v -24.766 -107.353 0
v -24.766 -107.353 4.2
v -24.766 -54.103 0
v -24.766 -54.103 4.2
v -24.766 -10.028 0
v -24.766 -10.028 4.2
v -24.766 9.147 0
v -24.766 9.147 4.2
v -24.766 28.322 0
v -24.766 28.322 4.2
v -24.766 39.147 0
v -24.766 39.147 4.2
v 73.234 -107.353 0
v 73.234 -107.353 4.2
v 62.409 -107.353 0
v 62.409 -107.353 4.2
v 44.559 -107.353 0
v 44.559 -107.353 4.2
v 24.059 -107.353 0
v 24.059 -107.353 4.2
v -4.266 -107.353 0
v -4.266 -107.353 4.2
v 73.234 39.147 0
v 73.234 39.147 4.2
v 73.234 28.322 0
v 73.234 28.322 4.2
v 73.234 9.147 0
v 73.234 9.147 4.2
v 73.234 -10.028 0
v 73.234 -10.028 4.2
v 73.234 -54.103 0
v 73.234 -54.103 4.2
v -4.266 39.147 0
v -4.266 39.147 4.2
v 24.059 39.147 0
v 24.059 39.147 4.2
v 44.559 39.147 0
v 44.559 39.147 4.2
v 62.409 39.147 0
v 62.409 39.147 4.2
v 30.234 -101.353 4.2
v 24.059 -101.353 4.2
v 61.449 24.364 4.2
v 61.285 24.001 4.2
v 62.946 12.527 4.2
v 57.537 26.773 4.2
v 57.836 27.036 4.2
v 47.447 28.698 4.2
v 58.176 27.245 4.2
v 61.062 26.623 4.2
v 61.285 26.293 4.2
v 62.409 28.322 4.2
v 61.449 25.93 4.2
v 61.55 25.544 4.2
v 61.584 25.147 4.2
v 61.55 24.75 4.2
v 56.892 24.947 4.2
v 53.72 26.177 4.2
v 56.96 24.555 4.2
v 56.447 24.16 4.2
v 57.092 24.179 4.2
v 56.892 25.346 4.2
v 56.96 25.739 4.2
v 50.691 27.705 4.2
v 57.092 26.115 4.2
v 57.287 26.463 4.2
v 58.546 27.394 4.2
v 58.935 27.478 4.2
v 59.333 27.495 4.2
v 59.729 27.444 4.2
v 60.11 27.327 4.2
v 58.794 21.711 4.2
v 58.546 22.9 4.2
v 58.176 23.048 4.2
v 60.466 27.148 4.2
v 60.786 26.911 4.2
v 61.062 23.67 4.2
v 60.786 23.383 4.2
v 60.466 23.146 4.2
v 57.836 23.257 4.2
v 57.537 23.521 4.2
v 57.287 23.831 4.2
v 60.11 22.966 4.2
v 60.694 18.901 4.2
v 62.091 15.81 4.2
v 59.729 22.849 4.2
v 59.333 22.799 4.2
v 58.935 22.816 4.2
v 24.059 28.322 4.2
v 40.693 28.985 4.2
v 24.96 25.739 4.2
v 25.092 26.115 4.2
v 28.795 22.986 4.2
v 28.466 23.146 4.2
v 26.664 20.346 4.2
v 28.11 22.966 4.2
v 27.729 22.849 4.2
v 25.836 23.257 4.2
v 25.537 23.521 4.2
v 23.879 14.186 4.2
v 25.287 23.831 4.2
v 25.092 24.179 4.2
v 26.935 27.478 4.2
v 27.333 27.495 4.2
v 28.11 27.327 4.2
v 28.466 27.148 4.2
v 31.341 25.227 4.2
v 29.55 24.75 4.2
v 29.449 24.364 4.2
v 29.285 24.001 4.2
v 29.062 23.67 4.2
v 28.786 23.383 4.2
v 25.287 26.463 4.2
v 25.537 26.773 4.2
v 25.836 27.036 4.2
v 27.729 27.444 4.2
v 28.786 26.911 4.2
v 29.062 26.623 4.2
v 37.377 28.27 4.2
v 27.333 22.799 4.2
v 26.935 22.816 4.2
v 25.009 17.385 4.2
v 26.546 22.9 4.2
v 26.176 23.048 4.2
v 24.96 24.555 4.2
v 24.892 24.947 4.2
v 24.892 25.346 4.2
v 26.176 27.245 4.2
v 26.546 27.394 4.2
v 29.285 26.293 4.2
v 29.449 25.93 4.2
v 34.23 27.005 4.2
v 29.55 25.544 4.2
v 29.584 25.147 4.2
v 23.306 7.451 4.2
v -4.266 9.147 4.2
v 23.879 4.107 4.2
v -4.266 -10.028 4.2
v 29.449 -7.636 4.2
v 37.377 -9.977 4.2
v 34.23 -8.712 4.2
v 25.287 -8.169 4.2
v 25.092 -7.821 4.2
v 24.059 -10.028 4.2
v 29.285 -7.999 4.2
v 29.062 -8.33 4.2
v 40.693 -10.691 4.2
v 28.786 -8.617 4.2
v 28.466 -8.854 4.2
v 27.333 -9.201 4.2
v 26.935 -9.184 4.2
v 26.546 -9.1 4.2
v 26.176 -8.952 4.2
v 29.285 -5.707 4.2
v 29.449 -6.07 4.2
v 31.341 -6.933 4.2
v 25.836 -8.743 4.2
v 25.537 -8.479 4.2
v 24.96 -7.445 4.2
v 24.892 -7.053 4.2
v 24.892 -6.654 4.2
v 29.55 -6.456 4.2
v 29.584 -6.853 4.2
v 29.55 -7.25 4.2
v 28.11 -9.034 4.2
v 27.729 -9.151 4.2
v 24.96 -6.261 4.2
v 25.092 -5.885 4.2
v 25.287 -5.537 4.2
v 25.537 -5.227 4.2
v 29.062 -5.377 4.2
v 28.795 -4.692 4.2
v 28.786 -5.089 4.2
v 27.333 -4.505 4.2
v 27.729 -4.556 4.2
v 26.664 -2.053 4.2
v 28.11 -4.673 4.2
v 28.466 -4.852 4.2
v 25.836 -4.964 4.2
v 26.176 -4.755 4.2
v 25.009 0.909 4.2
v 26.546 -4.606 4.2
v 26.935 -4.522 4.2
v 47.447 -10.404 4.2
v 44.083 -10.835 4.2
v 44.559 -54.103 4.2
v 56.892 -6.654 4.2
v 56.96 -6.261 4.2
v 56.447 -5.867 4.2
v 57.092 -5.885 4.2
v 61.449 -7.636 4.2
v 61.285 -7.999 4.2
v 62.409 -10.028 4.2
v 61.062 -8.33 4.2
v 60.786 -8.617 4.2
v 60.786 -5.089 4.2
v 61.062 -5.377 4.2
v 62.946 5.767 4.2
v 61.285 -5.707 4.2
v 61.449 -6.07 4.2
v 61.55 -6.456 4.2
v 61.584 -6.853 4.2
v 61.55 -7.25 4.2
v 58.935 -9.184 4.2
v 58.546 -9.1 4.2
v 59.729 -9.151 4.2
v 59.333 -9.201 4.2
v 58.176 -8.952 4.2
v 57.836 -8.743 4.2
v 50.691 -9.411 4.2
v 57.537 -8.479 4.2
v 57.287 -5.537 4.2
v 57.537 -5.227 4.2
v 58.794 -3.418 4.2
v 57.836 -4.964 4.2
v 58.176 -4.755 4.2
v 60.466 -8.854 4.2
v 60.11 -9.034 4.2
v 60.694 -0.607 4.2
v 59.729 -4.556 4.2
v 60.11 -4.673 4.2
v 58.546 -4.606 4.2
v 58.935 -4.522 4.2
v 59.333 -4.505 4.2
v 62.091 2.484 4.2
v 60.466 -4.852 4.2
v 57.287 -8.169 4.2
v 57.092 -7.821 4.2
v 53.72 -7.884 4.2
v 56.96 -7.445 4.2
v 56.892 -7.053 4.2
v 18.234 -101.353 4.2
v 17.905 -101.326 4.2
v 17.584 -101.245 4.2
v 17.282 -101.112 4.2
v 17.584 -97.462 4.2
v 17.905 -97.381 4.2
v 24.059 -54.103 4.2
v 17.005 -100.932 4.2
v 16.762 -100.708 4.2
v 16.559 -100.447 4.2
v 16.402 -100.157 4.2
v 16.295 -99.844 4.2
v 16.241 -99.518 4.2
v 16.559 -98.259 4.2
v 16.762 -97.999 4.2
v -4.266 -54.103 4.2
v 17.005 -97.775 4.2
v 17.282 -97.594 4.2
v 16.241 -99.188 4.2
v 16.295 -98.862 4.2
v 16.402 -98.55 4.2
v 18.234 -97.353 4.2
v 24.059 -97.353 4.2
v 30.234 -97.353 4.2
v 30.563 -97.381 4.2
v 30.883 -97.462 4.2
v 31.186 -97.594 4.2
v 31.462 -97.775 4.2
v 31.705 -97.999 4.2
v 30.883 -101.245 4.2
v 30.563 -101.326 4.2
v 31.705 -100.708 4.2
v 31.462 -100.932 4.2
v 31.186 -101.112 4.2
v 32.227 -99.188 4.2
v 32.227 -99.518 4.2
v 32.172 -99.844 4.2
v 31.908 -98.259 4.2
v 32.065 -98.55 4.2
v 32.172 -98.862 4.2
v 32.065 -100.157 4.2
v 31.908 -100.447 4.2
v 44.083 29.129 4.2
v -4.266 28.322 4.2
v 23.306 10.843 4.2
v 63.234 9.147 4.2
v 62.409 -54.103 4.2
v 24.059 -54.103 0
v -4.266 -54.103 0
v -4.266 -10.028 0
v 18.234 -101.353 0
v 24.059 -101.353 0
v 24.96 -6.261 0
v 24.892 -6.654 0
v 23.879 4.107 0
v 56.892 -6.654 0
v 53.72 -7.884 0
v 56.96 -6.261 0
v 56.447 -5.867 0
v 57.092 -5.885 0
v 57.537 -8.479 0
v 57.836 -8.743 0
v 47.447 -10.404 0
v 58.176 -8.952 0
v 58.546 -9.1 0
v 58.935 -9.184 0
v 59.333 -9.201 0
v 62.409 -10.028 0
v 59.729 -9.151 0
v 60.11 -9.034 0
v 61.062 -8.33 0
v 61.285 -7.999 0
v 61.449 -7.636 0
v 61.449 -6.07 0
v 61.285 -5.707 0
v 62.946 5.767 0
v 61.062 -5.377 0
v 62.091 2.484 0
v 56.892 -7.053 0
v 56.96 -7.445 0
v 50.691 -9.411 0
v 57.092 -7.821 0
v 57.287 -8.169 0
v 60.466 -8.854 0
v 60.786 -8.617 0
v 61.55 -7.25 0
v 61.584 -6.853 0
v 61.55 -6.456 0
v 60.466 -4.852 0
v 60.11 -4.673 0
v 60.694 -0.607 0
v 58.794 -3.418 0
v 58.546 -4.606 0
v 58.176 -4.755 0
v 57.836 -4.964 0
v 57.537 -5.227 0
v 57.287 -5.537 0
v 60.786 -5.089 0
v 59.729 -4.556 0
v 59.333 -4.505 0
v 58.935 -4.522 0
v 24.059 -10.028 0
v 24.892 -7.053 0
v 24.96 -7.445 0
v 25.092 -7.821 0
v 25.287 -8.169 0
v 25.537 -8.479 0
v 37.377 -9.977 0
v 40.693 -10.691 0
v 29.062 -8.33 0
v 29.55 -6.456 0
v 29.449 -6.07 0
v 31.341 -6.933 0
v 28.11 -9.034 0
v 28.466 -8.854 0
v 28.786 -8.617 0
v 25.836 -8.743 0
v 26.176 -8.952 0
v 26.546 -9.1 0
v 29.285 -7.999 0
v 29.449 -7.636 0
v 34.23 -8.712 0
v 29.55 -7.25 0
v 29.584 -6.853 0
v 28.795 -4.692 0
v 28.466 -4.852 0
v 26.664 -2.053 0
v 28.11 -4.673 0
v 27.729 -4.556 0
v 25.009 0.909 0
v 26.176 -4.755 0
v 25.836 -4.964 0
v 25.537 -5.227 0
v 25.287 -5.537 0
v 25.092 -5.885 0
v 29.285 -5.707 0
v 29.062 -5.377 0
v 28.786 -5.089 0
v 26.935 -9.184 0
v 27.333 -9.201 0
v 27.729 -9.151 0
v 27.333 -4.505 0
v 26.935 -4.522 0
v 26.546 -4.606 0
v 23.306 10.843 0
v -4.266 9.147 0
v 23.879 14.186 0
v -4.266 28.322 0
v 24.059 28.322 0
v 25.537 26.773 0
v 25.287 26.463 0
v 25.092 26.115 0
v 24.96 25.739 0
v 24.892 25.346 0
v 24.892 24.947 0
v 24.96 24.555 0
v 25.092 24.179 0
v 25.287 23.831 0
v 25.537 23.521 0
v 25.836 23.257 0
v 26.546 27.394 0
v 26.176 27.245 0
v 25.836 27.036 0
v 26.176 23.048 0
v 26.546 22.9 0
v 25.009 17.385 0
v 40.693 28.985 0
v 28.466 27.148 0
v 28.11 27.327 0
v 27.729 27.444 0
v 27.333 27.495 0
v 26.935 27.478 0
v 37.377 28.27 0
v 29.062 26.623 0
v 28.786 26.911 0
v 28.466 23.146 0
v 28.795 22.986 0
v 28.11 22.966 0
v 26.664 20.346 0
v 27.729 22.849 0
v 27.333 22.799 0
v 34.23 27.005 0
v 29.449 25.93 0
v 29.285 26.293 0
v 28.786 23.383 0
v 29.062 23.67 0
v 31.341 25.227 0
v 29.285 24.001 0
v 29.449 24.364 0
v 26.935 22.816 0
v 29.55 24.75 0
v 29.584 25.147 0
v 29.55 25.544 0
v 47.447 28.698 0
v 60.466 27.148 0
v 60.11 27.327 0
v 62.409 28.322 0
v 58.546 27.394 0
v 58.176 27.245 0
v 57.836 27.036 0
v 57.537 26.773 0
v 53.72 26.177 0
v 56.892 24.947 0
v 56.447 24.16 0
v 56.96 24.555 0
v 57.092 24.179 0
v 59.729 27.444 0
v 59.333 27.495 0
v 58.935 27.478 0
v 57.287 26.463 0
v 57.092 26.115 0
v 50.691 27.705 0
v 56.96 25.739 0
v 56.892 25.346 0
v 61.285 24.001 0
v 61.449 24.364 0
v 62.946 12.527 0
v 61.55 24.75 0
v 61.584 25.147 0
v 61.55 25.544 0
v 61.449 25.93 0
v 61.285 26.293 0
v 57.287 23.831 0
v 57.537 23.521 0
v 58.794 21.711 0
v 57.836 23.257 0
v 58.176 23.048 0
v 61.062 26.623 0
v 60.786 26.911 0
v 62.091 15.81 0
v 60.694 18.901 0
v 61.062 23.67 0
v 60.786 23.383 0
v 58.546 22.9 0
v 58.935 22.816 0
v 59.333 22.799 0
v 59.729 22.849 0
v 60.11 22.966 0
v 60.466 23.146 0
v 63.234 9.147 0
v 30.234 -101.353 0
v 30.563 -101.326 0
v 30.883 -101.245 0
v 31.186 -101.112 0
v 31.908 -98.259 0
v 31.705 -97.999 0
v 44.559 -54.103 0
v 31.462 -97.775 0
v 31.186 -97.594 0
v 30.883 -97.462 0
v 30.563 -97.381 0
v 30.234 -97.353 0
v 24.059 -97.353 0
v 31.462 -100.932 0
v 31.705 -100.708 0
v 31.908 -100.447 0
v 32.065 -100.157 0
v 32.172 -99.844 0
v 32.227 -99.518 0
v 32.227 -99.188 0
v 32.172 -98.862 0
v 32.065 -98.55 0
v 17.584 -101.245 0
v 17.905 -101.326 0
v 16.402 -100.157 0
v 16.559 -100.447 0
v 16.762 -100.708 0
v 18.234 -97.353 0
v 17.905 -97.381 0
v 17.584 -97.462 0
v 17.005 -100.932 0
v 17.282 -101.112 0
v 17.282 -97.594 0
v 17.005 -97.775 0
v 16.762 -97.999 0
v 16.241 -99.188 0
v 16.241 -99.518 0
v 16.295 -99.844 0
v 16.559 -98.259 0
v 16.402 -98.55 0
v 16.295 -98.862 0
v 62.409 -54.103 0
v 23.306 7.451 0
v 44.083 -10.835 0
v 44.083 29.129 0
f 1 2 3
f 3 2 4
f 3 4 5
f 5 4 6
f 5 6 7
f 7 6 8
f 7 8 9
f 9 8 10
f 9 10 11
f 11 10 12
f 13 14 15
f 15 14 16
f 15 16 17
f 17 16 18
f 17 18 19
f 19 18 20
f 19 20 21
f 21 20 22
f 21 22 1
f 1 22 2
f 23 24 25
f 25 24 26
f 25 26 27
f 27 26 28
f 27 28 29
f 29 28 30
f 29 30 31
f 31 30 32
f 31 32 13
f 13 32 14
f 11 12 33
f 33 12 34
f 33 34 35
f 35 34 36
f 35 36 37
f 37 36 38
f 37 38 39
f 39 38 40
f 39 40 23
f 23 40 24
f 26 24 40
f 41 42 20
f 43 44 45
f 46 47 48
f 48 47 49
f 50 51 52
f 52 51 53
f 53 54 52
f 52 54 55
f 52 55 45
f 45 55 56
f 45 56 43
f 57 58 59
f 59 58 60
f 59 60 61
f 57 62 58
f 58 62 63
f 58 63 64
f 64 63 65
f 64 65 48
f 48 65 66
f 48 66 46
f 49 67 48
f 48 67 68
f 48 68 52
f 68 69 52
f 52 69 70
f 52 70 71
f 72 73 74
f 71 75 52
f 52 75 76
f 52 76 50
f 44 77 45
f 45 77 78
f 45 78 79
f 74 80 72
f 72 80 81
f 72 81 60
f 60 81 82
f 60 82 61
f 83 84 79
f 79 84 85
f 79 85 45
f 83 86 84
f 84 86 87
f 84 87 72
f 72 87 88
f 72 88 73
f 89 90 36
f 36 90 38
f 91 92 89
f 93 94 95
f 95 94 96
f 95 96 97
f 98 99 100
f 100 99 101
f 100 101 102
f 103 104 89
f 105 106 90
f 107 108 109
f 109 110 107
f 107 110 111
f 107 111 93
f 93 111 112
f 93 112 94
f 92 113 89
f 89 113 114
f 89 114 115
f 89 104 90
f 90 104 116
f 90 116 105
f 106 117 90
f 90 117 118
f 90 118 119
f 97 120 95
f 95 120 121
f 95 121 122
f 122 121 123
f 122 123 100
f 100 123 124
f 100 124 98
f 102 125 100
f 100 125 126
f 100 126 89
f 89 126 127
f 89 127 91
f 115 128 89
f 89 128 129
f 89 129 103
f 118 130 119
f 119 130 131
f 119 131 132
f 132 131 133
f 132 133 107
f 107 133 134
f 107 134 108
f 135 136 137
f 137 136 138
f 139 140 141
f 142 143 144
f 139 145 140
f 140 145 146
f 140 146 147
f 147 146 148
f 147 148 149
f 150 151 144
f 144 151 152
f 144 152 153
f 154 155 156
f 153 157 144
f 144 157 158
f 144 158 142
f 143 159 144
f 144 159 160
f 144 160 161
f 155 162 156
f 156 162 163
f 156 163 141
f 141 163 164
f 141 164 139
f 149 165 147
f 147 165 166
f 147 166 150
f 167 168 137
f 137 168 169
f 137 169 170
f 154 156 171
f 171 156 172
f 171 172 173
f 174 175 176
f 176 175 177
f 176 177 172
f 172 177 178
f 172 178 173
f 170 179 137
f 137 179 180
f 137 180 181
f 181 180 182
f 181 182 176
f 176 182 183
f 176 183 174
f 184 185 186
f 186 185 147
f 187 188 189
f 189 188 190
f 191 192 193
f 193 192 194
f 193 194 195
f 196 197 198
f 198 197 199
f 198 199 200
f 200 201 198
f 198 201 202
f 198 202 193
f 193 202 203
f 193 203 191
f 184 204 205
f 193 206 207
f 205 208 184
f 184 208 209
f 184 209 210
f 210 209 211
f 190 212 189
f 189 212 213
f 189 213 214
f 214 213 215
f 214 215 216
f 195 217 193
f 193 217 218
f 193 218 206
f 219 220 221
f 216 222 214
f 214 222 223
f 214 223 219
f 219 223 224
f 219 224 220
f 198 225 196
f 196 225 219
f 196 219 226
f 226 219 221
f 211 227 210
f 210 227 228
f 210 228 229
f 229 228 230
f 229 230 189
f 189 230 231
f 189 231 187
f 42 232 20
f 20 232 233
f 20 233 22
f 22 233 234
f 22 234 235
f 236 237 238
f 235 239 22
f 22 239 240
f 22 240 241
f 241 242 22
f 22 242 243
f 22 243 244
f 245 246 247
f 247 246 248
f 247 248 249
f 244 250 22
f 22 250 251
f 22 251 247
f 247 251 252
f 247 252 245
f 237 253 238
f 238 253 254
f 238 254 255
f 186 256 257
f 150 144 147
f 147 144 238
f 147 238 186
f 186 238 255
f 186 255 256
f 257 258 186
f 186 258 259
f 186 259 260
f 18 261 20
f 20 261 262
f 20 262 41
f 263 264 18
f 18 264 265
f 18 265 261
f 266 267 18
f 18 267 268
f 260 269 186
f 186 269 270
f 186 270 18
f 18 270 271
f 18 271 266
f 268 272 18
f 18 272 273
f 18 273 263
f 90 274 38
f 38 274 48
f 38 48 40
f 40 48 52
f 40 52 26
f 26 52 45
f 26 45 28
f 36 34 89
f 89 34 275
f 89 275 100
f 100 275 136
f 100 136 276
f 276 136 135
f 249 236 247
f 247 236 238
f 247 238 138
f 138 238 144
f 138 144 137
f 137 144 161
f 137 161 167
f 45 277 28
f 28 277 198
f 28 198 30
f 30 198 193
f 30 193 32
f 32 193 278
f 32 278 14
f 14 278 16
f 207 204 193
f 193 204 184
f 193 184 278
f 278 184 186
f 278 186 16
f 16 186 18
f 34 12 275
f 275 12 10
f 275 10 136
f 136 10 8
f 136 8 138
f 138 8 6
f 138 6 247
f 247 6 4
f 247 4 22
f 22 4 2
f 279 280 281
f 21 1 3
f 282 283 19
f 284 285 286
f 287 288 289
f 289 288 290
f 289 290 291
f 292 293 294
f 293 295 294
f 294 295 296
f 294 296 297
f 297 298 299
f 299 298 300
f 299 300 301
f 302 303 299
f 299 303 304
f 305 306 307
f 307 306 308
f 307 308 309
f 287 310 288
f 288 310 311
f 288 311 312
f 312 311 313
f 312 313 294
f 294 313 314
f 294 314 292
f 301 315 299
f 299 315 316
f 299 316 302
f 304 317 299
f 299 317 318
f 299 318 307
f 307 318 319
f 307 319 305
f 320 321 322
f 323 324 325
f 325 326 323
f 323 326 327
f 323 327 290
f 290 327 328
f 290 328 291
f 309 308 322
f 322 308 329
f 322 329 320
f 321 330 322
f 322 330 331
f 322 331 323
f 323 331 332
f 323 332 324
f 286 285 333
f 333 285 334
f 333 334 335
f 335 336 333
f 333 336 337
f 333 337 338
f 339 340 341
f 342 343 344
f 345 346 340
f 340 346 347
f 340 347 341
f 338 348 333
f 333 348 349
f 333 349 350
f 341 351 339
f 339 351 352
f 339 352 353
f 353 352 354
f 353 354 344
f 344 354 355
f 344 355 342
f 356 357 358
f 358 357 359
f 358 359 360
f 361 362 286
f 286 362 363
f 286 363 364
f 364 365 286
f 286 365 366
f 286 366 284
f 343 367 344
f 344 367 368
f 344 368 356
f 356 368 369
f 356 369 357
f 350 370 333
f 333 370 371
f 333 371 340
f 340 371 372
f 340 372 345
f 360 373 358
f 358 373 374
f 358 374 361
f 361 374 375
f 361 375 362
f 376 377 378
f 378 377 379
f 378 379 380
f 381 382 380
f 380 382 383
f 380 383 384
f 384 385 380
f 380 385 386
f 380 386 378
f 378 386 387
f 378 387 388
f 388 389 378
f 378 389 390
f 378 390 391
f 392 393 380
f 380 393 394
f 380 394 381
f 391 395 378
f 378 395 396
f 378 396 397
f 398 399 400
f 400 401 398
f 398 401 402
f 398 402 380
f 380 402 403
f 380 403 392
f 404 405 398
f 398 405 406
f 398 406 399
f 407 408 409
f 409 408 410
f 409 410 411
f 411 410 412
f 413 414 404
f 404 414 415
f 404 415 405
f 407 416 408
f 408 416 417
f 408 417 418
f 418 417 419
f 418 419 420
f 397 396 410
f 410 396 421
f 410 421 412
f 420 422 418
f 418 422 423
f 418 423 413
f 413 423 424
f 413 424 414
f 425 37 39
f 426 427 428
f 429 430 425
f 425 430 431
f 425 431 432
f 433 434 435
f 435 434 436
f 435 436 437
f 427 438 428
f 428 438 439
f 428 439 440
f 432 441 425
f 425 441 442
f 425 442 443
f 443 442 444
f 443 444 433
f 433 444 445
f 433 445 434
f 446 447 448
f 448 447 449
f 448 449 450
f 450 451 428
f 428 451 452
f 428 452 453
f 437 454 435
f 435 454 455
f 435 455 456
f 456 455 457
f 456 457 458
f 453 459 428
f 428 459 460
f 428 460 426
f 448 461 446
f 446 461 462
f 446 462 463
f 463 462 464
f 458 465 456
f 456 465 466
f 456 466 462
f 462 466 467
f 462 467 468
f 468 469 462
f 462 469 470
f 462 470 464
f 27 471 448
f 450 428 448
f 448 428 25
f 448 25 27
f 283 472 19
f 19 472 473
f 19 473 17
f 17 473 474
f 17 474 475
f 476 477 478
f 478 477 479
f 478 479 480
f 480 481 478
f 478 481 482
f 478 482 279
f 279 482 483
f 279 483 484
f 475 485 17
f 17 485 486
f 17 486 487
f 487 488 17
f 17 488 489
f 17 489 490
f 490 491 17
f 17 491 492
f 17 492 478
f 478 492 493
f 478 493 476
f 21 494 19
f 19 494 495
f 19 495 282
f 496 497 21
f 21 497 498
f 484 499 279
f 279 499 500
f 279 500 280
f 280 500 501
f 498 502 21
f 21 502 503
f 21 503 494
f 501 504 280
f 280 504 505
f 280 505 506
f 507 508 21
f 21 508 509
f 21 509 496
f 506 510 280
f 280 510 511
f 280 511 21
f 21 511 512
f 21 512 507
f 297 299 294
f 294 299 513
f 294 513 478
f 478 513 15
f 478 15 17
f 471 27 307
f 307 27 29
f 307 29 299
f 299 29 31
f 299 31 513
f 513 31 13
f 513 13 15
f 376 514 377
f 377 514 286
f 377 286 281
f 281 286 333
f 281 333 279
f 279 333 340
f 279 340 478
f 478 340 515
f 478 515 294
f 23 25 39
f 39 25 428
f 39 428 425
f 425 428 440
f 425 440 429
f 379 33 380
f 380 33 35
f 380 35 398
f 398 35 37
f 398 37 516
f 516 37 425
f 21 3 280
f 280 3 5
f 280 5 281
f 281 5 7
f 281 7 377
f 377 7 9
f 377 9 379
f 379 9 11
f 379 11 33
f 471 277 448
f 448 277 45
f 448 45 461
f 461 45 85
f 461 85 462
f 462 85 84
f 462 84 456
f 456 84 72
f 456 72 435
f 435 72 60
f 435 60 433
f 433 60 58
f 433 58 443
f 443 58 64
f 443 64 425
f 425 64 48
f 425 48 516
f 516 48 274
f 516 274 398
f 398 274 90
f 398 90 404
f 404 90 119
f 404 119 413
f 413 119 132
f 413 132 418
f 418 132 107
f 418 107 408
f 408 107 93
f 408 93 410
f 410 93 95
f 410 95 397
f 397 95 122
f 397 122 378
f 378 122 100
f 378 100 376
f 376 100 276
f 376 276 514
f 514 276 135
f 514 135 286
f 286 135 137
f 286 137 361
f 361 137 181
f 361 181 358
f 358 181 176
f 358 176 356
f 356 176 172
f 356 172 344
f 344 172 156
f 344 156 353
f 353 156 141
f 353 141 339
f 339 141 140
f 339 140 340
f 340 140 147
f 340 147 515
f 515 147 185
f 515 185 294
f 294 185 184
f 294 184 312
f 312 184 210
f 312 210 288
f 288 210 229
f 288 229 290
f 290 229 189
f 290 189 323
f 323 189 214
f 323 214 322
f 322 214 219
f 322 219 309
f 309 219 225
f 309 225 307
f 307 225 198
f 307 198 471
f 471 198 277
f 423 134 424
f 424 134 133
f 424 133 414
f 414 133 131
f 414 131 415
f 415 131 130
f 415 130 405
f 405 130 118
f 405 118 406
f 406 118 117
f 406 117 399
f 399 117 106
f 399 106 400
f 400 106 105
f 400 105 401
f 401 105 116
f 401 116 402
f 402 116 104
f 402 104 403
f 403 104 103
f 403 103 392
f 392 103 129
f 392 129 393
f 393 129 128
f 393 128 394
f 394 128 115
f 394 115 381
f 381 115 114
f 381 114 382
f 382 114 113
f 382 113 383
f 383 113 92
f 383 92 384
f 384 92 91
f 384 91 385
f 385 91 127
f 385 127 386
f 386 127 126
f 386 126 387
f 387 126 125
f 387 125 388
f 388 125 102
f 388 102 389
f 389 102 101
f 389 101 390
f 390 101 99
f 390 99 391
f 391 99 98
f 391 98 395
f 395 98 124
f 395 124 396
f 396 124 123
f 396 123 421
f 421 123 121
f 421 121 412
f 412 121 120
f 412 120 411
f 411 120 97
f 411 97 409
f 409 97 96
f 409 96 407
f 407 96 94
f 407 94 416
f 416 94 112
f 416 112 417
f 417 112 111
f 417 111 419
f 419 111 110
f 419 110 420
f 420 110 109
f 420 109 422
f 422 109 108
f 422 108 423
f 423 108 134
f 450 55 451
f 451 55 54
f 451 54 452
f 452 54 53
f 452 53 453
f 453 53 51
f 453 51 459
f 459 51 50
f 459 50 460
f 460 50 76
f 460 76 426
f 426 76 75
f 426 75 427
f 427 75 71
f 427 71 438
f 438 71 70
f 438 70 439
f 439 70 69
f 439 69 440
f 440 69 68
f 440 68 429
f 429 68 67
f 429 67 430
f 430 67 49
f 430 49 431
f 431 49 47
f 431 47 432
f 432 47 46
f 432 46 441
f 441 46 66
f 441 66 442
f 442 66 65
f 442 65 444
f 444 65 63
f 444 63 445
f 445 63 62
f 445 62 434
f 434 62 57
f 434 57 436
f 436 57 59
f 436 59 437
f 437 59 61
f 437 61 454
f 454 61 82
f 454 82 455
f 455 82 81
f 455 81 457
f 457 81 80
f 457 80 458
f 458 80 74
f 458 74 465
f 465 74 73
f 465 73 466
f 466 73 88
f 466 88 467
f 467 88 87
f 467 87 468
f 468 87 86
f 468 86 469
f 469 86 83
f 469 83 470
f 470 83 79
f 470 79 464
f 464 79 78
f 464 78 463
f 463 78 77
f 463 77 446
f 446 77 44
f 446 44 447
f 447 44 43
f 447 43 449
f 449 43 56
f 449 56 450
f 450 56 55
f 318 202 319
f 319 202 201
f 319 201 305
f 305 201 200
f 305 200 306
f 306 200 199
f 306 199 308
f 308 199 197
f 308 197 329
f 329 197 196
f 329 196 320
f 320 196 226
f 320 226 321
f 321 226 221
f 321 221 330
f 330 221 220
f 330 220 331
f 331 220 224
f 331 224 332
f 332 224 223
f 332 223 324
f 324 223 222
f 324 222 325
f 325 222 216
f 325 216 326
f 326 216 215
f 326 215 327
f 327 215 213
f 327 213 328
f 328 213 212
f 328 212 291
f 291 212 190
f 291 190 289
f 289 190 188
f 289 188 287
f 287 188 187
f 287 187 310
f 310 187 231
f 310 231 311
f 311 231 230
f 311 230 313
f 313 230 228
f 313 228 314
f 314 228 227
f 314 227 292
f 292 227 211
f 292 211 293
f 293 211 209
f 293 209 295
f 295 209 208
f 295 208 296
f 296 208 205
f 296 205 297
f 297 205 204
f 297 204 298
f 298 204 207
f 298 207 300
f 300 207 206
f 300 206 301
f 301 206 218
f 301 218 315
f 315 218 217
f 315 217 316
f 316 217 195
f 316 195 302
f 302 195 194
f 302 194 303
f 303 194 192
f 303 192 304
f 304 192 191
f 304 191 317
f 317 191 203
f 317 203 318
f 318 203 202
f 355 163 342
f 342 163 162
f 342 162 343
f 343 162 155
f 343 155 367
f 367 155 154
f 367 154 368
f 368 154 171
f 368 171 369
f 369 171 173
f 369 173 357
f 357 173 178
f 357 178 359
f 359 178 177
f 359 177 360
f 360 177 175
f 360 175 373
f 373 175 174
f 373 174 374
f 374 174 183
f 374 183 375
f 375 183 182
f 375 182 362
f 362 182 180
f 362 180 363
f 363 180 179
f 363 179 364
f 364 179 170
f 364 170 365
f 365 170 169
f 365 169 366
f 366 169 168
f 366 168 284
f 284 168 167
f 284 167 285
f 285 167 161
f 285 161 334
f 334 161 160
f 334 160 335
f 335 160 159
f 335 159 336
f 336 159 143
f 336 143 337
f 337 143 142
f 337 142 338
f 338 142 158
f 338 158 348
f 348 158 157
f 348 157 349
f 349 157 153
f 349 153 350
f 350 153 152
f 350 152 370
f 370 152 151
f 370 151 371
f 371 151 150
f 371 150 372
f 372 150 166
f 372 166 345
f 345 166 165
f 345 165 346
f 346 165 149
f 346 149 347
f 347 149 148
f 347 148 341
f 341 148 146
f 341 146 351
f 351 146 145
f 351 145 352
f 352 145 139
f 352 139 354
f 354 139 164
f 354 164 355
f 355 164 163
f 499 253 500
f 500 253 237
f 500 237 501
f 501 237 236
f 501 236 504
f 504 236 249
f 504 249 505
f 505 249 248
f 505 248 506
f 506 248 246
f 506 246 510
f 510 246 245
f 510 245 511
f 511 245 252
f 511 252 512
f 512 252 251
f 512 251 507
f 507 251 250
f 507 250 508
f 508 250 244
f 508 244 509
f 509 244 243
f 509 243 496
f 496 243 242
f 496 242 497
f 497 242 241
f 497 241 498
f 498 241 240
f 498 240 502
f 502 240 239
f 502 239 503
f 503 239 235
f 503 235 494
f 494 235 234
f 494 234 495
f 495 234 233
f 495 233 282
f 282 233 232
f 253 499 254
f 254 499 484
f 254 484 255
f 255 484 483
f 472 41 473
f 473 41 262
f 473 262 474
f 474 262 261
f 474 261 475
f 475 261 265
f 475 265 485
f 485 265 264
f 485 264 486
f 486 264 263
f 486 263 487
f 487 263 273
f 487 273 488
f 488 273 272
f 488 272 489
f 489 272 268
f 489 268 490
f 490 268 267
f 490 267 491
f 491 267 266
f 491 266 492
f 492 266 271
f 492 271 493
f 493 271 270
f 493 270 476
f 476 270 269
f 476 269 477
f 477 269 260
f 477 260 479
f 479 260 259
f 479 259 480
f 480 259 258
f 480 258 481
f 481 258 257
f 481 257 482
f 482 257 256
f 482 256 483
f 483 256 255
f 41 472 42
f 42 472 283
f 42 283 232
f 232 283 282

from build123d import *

# Parameters (mm, degrees)
SKETCH1_W           = 98
SKETCH1_H           = 146.5
BOSS_EXTRUDE1_DEPTH = 4.2
SKETCH3_R           = 20
CUT_EXTRUDE2_DEPTH  = 10
SKETCH4_R           = 2.35
CUT_EXTRUDE3_DEPTH  = 10
CUT_EXTRUDE5_DEPTH  = 131.021293634


with BuildPart() as part:
    # Sketch1 → Boss-Extrude1 (new body)
    with BuildSketch(Plane.XY):
        with Locations((24.233695652, -34.10326087)):
            Rectangle(SKETCH1_W, SKETCH1_H)
    extrude(amount=BOSS_EXTRUDE1_DEPTH)

    # Sketch3 → Cut-Extrude2 (cut)
    with BuildSketch(Plane.XY.offset(4.2)):
        with Locations((43.233695652, 9.14673913)):
            Circle(SKETCH3_R)
    extrude(amount=-CUT_EXTRUDE2_DEPTH, mode=Mode.SUBTRACT)

    # Sketch4 → Cut-Extrude3 (cut)
    with BuildSketch(Plane.XY.offset(4.2)):
        with Locations((27.233695652, 25.14673913)):
            Circle(SKETCH4_R)
        with Locations((59.233695652, 25.14673913)):
            Circle(SKETCH4_R)
        with Locations((59.233695652, -6.85326087)):
            Circle(SKETCH4_R)
        with Locations((27.233695652, -6.85326087)):
            Circle(SKETCH4_R)
    extrude(amount=-CUT_EXTRUDE3_DEPTH, mode=Mode.SUBTRACT)

    # Sketch6 → Cut-Extrude5 (cut, through all)
    with BuildSketch(Plane.XY.offset(4.2)):
        with BuildLine():
            Line((18.233695652, -97.35326087), (30.233695652, -97.35326087))
            ThreePointArc((30.233695652, -97.35326087), (32.233695652, -99.35326087), (30.233695652, -101.35326087))
            Line((30.233695652, -101.35326087), (18.233695652, -101.35326087))
            ThreePointArc((18.233695652, -101.35326087), (16.233695652, -99.35326087), (18.233695652, -97.35326087))
        make_face()
    extrude(amount=-CUT_EXTRUDE5_DEPTH, mode=Mode.SUBTRACT)


solid = part.part
